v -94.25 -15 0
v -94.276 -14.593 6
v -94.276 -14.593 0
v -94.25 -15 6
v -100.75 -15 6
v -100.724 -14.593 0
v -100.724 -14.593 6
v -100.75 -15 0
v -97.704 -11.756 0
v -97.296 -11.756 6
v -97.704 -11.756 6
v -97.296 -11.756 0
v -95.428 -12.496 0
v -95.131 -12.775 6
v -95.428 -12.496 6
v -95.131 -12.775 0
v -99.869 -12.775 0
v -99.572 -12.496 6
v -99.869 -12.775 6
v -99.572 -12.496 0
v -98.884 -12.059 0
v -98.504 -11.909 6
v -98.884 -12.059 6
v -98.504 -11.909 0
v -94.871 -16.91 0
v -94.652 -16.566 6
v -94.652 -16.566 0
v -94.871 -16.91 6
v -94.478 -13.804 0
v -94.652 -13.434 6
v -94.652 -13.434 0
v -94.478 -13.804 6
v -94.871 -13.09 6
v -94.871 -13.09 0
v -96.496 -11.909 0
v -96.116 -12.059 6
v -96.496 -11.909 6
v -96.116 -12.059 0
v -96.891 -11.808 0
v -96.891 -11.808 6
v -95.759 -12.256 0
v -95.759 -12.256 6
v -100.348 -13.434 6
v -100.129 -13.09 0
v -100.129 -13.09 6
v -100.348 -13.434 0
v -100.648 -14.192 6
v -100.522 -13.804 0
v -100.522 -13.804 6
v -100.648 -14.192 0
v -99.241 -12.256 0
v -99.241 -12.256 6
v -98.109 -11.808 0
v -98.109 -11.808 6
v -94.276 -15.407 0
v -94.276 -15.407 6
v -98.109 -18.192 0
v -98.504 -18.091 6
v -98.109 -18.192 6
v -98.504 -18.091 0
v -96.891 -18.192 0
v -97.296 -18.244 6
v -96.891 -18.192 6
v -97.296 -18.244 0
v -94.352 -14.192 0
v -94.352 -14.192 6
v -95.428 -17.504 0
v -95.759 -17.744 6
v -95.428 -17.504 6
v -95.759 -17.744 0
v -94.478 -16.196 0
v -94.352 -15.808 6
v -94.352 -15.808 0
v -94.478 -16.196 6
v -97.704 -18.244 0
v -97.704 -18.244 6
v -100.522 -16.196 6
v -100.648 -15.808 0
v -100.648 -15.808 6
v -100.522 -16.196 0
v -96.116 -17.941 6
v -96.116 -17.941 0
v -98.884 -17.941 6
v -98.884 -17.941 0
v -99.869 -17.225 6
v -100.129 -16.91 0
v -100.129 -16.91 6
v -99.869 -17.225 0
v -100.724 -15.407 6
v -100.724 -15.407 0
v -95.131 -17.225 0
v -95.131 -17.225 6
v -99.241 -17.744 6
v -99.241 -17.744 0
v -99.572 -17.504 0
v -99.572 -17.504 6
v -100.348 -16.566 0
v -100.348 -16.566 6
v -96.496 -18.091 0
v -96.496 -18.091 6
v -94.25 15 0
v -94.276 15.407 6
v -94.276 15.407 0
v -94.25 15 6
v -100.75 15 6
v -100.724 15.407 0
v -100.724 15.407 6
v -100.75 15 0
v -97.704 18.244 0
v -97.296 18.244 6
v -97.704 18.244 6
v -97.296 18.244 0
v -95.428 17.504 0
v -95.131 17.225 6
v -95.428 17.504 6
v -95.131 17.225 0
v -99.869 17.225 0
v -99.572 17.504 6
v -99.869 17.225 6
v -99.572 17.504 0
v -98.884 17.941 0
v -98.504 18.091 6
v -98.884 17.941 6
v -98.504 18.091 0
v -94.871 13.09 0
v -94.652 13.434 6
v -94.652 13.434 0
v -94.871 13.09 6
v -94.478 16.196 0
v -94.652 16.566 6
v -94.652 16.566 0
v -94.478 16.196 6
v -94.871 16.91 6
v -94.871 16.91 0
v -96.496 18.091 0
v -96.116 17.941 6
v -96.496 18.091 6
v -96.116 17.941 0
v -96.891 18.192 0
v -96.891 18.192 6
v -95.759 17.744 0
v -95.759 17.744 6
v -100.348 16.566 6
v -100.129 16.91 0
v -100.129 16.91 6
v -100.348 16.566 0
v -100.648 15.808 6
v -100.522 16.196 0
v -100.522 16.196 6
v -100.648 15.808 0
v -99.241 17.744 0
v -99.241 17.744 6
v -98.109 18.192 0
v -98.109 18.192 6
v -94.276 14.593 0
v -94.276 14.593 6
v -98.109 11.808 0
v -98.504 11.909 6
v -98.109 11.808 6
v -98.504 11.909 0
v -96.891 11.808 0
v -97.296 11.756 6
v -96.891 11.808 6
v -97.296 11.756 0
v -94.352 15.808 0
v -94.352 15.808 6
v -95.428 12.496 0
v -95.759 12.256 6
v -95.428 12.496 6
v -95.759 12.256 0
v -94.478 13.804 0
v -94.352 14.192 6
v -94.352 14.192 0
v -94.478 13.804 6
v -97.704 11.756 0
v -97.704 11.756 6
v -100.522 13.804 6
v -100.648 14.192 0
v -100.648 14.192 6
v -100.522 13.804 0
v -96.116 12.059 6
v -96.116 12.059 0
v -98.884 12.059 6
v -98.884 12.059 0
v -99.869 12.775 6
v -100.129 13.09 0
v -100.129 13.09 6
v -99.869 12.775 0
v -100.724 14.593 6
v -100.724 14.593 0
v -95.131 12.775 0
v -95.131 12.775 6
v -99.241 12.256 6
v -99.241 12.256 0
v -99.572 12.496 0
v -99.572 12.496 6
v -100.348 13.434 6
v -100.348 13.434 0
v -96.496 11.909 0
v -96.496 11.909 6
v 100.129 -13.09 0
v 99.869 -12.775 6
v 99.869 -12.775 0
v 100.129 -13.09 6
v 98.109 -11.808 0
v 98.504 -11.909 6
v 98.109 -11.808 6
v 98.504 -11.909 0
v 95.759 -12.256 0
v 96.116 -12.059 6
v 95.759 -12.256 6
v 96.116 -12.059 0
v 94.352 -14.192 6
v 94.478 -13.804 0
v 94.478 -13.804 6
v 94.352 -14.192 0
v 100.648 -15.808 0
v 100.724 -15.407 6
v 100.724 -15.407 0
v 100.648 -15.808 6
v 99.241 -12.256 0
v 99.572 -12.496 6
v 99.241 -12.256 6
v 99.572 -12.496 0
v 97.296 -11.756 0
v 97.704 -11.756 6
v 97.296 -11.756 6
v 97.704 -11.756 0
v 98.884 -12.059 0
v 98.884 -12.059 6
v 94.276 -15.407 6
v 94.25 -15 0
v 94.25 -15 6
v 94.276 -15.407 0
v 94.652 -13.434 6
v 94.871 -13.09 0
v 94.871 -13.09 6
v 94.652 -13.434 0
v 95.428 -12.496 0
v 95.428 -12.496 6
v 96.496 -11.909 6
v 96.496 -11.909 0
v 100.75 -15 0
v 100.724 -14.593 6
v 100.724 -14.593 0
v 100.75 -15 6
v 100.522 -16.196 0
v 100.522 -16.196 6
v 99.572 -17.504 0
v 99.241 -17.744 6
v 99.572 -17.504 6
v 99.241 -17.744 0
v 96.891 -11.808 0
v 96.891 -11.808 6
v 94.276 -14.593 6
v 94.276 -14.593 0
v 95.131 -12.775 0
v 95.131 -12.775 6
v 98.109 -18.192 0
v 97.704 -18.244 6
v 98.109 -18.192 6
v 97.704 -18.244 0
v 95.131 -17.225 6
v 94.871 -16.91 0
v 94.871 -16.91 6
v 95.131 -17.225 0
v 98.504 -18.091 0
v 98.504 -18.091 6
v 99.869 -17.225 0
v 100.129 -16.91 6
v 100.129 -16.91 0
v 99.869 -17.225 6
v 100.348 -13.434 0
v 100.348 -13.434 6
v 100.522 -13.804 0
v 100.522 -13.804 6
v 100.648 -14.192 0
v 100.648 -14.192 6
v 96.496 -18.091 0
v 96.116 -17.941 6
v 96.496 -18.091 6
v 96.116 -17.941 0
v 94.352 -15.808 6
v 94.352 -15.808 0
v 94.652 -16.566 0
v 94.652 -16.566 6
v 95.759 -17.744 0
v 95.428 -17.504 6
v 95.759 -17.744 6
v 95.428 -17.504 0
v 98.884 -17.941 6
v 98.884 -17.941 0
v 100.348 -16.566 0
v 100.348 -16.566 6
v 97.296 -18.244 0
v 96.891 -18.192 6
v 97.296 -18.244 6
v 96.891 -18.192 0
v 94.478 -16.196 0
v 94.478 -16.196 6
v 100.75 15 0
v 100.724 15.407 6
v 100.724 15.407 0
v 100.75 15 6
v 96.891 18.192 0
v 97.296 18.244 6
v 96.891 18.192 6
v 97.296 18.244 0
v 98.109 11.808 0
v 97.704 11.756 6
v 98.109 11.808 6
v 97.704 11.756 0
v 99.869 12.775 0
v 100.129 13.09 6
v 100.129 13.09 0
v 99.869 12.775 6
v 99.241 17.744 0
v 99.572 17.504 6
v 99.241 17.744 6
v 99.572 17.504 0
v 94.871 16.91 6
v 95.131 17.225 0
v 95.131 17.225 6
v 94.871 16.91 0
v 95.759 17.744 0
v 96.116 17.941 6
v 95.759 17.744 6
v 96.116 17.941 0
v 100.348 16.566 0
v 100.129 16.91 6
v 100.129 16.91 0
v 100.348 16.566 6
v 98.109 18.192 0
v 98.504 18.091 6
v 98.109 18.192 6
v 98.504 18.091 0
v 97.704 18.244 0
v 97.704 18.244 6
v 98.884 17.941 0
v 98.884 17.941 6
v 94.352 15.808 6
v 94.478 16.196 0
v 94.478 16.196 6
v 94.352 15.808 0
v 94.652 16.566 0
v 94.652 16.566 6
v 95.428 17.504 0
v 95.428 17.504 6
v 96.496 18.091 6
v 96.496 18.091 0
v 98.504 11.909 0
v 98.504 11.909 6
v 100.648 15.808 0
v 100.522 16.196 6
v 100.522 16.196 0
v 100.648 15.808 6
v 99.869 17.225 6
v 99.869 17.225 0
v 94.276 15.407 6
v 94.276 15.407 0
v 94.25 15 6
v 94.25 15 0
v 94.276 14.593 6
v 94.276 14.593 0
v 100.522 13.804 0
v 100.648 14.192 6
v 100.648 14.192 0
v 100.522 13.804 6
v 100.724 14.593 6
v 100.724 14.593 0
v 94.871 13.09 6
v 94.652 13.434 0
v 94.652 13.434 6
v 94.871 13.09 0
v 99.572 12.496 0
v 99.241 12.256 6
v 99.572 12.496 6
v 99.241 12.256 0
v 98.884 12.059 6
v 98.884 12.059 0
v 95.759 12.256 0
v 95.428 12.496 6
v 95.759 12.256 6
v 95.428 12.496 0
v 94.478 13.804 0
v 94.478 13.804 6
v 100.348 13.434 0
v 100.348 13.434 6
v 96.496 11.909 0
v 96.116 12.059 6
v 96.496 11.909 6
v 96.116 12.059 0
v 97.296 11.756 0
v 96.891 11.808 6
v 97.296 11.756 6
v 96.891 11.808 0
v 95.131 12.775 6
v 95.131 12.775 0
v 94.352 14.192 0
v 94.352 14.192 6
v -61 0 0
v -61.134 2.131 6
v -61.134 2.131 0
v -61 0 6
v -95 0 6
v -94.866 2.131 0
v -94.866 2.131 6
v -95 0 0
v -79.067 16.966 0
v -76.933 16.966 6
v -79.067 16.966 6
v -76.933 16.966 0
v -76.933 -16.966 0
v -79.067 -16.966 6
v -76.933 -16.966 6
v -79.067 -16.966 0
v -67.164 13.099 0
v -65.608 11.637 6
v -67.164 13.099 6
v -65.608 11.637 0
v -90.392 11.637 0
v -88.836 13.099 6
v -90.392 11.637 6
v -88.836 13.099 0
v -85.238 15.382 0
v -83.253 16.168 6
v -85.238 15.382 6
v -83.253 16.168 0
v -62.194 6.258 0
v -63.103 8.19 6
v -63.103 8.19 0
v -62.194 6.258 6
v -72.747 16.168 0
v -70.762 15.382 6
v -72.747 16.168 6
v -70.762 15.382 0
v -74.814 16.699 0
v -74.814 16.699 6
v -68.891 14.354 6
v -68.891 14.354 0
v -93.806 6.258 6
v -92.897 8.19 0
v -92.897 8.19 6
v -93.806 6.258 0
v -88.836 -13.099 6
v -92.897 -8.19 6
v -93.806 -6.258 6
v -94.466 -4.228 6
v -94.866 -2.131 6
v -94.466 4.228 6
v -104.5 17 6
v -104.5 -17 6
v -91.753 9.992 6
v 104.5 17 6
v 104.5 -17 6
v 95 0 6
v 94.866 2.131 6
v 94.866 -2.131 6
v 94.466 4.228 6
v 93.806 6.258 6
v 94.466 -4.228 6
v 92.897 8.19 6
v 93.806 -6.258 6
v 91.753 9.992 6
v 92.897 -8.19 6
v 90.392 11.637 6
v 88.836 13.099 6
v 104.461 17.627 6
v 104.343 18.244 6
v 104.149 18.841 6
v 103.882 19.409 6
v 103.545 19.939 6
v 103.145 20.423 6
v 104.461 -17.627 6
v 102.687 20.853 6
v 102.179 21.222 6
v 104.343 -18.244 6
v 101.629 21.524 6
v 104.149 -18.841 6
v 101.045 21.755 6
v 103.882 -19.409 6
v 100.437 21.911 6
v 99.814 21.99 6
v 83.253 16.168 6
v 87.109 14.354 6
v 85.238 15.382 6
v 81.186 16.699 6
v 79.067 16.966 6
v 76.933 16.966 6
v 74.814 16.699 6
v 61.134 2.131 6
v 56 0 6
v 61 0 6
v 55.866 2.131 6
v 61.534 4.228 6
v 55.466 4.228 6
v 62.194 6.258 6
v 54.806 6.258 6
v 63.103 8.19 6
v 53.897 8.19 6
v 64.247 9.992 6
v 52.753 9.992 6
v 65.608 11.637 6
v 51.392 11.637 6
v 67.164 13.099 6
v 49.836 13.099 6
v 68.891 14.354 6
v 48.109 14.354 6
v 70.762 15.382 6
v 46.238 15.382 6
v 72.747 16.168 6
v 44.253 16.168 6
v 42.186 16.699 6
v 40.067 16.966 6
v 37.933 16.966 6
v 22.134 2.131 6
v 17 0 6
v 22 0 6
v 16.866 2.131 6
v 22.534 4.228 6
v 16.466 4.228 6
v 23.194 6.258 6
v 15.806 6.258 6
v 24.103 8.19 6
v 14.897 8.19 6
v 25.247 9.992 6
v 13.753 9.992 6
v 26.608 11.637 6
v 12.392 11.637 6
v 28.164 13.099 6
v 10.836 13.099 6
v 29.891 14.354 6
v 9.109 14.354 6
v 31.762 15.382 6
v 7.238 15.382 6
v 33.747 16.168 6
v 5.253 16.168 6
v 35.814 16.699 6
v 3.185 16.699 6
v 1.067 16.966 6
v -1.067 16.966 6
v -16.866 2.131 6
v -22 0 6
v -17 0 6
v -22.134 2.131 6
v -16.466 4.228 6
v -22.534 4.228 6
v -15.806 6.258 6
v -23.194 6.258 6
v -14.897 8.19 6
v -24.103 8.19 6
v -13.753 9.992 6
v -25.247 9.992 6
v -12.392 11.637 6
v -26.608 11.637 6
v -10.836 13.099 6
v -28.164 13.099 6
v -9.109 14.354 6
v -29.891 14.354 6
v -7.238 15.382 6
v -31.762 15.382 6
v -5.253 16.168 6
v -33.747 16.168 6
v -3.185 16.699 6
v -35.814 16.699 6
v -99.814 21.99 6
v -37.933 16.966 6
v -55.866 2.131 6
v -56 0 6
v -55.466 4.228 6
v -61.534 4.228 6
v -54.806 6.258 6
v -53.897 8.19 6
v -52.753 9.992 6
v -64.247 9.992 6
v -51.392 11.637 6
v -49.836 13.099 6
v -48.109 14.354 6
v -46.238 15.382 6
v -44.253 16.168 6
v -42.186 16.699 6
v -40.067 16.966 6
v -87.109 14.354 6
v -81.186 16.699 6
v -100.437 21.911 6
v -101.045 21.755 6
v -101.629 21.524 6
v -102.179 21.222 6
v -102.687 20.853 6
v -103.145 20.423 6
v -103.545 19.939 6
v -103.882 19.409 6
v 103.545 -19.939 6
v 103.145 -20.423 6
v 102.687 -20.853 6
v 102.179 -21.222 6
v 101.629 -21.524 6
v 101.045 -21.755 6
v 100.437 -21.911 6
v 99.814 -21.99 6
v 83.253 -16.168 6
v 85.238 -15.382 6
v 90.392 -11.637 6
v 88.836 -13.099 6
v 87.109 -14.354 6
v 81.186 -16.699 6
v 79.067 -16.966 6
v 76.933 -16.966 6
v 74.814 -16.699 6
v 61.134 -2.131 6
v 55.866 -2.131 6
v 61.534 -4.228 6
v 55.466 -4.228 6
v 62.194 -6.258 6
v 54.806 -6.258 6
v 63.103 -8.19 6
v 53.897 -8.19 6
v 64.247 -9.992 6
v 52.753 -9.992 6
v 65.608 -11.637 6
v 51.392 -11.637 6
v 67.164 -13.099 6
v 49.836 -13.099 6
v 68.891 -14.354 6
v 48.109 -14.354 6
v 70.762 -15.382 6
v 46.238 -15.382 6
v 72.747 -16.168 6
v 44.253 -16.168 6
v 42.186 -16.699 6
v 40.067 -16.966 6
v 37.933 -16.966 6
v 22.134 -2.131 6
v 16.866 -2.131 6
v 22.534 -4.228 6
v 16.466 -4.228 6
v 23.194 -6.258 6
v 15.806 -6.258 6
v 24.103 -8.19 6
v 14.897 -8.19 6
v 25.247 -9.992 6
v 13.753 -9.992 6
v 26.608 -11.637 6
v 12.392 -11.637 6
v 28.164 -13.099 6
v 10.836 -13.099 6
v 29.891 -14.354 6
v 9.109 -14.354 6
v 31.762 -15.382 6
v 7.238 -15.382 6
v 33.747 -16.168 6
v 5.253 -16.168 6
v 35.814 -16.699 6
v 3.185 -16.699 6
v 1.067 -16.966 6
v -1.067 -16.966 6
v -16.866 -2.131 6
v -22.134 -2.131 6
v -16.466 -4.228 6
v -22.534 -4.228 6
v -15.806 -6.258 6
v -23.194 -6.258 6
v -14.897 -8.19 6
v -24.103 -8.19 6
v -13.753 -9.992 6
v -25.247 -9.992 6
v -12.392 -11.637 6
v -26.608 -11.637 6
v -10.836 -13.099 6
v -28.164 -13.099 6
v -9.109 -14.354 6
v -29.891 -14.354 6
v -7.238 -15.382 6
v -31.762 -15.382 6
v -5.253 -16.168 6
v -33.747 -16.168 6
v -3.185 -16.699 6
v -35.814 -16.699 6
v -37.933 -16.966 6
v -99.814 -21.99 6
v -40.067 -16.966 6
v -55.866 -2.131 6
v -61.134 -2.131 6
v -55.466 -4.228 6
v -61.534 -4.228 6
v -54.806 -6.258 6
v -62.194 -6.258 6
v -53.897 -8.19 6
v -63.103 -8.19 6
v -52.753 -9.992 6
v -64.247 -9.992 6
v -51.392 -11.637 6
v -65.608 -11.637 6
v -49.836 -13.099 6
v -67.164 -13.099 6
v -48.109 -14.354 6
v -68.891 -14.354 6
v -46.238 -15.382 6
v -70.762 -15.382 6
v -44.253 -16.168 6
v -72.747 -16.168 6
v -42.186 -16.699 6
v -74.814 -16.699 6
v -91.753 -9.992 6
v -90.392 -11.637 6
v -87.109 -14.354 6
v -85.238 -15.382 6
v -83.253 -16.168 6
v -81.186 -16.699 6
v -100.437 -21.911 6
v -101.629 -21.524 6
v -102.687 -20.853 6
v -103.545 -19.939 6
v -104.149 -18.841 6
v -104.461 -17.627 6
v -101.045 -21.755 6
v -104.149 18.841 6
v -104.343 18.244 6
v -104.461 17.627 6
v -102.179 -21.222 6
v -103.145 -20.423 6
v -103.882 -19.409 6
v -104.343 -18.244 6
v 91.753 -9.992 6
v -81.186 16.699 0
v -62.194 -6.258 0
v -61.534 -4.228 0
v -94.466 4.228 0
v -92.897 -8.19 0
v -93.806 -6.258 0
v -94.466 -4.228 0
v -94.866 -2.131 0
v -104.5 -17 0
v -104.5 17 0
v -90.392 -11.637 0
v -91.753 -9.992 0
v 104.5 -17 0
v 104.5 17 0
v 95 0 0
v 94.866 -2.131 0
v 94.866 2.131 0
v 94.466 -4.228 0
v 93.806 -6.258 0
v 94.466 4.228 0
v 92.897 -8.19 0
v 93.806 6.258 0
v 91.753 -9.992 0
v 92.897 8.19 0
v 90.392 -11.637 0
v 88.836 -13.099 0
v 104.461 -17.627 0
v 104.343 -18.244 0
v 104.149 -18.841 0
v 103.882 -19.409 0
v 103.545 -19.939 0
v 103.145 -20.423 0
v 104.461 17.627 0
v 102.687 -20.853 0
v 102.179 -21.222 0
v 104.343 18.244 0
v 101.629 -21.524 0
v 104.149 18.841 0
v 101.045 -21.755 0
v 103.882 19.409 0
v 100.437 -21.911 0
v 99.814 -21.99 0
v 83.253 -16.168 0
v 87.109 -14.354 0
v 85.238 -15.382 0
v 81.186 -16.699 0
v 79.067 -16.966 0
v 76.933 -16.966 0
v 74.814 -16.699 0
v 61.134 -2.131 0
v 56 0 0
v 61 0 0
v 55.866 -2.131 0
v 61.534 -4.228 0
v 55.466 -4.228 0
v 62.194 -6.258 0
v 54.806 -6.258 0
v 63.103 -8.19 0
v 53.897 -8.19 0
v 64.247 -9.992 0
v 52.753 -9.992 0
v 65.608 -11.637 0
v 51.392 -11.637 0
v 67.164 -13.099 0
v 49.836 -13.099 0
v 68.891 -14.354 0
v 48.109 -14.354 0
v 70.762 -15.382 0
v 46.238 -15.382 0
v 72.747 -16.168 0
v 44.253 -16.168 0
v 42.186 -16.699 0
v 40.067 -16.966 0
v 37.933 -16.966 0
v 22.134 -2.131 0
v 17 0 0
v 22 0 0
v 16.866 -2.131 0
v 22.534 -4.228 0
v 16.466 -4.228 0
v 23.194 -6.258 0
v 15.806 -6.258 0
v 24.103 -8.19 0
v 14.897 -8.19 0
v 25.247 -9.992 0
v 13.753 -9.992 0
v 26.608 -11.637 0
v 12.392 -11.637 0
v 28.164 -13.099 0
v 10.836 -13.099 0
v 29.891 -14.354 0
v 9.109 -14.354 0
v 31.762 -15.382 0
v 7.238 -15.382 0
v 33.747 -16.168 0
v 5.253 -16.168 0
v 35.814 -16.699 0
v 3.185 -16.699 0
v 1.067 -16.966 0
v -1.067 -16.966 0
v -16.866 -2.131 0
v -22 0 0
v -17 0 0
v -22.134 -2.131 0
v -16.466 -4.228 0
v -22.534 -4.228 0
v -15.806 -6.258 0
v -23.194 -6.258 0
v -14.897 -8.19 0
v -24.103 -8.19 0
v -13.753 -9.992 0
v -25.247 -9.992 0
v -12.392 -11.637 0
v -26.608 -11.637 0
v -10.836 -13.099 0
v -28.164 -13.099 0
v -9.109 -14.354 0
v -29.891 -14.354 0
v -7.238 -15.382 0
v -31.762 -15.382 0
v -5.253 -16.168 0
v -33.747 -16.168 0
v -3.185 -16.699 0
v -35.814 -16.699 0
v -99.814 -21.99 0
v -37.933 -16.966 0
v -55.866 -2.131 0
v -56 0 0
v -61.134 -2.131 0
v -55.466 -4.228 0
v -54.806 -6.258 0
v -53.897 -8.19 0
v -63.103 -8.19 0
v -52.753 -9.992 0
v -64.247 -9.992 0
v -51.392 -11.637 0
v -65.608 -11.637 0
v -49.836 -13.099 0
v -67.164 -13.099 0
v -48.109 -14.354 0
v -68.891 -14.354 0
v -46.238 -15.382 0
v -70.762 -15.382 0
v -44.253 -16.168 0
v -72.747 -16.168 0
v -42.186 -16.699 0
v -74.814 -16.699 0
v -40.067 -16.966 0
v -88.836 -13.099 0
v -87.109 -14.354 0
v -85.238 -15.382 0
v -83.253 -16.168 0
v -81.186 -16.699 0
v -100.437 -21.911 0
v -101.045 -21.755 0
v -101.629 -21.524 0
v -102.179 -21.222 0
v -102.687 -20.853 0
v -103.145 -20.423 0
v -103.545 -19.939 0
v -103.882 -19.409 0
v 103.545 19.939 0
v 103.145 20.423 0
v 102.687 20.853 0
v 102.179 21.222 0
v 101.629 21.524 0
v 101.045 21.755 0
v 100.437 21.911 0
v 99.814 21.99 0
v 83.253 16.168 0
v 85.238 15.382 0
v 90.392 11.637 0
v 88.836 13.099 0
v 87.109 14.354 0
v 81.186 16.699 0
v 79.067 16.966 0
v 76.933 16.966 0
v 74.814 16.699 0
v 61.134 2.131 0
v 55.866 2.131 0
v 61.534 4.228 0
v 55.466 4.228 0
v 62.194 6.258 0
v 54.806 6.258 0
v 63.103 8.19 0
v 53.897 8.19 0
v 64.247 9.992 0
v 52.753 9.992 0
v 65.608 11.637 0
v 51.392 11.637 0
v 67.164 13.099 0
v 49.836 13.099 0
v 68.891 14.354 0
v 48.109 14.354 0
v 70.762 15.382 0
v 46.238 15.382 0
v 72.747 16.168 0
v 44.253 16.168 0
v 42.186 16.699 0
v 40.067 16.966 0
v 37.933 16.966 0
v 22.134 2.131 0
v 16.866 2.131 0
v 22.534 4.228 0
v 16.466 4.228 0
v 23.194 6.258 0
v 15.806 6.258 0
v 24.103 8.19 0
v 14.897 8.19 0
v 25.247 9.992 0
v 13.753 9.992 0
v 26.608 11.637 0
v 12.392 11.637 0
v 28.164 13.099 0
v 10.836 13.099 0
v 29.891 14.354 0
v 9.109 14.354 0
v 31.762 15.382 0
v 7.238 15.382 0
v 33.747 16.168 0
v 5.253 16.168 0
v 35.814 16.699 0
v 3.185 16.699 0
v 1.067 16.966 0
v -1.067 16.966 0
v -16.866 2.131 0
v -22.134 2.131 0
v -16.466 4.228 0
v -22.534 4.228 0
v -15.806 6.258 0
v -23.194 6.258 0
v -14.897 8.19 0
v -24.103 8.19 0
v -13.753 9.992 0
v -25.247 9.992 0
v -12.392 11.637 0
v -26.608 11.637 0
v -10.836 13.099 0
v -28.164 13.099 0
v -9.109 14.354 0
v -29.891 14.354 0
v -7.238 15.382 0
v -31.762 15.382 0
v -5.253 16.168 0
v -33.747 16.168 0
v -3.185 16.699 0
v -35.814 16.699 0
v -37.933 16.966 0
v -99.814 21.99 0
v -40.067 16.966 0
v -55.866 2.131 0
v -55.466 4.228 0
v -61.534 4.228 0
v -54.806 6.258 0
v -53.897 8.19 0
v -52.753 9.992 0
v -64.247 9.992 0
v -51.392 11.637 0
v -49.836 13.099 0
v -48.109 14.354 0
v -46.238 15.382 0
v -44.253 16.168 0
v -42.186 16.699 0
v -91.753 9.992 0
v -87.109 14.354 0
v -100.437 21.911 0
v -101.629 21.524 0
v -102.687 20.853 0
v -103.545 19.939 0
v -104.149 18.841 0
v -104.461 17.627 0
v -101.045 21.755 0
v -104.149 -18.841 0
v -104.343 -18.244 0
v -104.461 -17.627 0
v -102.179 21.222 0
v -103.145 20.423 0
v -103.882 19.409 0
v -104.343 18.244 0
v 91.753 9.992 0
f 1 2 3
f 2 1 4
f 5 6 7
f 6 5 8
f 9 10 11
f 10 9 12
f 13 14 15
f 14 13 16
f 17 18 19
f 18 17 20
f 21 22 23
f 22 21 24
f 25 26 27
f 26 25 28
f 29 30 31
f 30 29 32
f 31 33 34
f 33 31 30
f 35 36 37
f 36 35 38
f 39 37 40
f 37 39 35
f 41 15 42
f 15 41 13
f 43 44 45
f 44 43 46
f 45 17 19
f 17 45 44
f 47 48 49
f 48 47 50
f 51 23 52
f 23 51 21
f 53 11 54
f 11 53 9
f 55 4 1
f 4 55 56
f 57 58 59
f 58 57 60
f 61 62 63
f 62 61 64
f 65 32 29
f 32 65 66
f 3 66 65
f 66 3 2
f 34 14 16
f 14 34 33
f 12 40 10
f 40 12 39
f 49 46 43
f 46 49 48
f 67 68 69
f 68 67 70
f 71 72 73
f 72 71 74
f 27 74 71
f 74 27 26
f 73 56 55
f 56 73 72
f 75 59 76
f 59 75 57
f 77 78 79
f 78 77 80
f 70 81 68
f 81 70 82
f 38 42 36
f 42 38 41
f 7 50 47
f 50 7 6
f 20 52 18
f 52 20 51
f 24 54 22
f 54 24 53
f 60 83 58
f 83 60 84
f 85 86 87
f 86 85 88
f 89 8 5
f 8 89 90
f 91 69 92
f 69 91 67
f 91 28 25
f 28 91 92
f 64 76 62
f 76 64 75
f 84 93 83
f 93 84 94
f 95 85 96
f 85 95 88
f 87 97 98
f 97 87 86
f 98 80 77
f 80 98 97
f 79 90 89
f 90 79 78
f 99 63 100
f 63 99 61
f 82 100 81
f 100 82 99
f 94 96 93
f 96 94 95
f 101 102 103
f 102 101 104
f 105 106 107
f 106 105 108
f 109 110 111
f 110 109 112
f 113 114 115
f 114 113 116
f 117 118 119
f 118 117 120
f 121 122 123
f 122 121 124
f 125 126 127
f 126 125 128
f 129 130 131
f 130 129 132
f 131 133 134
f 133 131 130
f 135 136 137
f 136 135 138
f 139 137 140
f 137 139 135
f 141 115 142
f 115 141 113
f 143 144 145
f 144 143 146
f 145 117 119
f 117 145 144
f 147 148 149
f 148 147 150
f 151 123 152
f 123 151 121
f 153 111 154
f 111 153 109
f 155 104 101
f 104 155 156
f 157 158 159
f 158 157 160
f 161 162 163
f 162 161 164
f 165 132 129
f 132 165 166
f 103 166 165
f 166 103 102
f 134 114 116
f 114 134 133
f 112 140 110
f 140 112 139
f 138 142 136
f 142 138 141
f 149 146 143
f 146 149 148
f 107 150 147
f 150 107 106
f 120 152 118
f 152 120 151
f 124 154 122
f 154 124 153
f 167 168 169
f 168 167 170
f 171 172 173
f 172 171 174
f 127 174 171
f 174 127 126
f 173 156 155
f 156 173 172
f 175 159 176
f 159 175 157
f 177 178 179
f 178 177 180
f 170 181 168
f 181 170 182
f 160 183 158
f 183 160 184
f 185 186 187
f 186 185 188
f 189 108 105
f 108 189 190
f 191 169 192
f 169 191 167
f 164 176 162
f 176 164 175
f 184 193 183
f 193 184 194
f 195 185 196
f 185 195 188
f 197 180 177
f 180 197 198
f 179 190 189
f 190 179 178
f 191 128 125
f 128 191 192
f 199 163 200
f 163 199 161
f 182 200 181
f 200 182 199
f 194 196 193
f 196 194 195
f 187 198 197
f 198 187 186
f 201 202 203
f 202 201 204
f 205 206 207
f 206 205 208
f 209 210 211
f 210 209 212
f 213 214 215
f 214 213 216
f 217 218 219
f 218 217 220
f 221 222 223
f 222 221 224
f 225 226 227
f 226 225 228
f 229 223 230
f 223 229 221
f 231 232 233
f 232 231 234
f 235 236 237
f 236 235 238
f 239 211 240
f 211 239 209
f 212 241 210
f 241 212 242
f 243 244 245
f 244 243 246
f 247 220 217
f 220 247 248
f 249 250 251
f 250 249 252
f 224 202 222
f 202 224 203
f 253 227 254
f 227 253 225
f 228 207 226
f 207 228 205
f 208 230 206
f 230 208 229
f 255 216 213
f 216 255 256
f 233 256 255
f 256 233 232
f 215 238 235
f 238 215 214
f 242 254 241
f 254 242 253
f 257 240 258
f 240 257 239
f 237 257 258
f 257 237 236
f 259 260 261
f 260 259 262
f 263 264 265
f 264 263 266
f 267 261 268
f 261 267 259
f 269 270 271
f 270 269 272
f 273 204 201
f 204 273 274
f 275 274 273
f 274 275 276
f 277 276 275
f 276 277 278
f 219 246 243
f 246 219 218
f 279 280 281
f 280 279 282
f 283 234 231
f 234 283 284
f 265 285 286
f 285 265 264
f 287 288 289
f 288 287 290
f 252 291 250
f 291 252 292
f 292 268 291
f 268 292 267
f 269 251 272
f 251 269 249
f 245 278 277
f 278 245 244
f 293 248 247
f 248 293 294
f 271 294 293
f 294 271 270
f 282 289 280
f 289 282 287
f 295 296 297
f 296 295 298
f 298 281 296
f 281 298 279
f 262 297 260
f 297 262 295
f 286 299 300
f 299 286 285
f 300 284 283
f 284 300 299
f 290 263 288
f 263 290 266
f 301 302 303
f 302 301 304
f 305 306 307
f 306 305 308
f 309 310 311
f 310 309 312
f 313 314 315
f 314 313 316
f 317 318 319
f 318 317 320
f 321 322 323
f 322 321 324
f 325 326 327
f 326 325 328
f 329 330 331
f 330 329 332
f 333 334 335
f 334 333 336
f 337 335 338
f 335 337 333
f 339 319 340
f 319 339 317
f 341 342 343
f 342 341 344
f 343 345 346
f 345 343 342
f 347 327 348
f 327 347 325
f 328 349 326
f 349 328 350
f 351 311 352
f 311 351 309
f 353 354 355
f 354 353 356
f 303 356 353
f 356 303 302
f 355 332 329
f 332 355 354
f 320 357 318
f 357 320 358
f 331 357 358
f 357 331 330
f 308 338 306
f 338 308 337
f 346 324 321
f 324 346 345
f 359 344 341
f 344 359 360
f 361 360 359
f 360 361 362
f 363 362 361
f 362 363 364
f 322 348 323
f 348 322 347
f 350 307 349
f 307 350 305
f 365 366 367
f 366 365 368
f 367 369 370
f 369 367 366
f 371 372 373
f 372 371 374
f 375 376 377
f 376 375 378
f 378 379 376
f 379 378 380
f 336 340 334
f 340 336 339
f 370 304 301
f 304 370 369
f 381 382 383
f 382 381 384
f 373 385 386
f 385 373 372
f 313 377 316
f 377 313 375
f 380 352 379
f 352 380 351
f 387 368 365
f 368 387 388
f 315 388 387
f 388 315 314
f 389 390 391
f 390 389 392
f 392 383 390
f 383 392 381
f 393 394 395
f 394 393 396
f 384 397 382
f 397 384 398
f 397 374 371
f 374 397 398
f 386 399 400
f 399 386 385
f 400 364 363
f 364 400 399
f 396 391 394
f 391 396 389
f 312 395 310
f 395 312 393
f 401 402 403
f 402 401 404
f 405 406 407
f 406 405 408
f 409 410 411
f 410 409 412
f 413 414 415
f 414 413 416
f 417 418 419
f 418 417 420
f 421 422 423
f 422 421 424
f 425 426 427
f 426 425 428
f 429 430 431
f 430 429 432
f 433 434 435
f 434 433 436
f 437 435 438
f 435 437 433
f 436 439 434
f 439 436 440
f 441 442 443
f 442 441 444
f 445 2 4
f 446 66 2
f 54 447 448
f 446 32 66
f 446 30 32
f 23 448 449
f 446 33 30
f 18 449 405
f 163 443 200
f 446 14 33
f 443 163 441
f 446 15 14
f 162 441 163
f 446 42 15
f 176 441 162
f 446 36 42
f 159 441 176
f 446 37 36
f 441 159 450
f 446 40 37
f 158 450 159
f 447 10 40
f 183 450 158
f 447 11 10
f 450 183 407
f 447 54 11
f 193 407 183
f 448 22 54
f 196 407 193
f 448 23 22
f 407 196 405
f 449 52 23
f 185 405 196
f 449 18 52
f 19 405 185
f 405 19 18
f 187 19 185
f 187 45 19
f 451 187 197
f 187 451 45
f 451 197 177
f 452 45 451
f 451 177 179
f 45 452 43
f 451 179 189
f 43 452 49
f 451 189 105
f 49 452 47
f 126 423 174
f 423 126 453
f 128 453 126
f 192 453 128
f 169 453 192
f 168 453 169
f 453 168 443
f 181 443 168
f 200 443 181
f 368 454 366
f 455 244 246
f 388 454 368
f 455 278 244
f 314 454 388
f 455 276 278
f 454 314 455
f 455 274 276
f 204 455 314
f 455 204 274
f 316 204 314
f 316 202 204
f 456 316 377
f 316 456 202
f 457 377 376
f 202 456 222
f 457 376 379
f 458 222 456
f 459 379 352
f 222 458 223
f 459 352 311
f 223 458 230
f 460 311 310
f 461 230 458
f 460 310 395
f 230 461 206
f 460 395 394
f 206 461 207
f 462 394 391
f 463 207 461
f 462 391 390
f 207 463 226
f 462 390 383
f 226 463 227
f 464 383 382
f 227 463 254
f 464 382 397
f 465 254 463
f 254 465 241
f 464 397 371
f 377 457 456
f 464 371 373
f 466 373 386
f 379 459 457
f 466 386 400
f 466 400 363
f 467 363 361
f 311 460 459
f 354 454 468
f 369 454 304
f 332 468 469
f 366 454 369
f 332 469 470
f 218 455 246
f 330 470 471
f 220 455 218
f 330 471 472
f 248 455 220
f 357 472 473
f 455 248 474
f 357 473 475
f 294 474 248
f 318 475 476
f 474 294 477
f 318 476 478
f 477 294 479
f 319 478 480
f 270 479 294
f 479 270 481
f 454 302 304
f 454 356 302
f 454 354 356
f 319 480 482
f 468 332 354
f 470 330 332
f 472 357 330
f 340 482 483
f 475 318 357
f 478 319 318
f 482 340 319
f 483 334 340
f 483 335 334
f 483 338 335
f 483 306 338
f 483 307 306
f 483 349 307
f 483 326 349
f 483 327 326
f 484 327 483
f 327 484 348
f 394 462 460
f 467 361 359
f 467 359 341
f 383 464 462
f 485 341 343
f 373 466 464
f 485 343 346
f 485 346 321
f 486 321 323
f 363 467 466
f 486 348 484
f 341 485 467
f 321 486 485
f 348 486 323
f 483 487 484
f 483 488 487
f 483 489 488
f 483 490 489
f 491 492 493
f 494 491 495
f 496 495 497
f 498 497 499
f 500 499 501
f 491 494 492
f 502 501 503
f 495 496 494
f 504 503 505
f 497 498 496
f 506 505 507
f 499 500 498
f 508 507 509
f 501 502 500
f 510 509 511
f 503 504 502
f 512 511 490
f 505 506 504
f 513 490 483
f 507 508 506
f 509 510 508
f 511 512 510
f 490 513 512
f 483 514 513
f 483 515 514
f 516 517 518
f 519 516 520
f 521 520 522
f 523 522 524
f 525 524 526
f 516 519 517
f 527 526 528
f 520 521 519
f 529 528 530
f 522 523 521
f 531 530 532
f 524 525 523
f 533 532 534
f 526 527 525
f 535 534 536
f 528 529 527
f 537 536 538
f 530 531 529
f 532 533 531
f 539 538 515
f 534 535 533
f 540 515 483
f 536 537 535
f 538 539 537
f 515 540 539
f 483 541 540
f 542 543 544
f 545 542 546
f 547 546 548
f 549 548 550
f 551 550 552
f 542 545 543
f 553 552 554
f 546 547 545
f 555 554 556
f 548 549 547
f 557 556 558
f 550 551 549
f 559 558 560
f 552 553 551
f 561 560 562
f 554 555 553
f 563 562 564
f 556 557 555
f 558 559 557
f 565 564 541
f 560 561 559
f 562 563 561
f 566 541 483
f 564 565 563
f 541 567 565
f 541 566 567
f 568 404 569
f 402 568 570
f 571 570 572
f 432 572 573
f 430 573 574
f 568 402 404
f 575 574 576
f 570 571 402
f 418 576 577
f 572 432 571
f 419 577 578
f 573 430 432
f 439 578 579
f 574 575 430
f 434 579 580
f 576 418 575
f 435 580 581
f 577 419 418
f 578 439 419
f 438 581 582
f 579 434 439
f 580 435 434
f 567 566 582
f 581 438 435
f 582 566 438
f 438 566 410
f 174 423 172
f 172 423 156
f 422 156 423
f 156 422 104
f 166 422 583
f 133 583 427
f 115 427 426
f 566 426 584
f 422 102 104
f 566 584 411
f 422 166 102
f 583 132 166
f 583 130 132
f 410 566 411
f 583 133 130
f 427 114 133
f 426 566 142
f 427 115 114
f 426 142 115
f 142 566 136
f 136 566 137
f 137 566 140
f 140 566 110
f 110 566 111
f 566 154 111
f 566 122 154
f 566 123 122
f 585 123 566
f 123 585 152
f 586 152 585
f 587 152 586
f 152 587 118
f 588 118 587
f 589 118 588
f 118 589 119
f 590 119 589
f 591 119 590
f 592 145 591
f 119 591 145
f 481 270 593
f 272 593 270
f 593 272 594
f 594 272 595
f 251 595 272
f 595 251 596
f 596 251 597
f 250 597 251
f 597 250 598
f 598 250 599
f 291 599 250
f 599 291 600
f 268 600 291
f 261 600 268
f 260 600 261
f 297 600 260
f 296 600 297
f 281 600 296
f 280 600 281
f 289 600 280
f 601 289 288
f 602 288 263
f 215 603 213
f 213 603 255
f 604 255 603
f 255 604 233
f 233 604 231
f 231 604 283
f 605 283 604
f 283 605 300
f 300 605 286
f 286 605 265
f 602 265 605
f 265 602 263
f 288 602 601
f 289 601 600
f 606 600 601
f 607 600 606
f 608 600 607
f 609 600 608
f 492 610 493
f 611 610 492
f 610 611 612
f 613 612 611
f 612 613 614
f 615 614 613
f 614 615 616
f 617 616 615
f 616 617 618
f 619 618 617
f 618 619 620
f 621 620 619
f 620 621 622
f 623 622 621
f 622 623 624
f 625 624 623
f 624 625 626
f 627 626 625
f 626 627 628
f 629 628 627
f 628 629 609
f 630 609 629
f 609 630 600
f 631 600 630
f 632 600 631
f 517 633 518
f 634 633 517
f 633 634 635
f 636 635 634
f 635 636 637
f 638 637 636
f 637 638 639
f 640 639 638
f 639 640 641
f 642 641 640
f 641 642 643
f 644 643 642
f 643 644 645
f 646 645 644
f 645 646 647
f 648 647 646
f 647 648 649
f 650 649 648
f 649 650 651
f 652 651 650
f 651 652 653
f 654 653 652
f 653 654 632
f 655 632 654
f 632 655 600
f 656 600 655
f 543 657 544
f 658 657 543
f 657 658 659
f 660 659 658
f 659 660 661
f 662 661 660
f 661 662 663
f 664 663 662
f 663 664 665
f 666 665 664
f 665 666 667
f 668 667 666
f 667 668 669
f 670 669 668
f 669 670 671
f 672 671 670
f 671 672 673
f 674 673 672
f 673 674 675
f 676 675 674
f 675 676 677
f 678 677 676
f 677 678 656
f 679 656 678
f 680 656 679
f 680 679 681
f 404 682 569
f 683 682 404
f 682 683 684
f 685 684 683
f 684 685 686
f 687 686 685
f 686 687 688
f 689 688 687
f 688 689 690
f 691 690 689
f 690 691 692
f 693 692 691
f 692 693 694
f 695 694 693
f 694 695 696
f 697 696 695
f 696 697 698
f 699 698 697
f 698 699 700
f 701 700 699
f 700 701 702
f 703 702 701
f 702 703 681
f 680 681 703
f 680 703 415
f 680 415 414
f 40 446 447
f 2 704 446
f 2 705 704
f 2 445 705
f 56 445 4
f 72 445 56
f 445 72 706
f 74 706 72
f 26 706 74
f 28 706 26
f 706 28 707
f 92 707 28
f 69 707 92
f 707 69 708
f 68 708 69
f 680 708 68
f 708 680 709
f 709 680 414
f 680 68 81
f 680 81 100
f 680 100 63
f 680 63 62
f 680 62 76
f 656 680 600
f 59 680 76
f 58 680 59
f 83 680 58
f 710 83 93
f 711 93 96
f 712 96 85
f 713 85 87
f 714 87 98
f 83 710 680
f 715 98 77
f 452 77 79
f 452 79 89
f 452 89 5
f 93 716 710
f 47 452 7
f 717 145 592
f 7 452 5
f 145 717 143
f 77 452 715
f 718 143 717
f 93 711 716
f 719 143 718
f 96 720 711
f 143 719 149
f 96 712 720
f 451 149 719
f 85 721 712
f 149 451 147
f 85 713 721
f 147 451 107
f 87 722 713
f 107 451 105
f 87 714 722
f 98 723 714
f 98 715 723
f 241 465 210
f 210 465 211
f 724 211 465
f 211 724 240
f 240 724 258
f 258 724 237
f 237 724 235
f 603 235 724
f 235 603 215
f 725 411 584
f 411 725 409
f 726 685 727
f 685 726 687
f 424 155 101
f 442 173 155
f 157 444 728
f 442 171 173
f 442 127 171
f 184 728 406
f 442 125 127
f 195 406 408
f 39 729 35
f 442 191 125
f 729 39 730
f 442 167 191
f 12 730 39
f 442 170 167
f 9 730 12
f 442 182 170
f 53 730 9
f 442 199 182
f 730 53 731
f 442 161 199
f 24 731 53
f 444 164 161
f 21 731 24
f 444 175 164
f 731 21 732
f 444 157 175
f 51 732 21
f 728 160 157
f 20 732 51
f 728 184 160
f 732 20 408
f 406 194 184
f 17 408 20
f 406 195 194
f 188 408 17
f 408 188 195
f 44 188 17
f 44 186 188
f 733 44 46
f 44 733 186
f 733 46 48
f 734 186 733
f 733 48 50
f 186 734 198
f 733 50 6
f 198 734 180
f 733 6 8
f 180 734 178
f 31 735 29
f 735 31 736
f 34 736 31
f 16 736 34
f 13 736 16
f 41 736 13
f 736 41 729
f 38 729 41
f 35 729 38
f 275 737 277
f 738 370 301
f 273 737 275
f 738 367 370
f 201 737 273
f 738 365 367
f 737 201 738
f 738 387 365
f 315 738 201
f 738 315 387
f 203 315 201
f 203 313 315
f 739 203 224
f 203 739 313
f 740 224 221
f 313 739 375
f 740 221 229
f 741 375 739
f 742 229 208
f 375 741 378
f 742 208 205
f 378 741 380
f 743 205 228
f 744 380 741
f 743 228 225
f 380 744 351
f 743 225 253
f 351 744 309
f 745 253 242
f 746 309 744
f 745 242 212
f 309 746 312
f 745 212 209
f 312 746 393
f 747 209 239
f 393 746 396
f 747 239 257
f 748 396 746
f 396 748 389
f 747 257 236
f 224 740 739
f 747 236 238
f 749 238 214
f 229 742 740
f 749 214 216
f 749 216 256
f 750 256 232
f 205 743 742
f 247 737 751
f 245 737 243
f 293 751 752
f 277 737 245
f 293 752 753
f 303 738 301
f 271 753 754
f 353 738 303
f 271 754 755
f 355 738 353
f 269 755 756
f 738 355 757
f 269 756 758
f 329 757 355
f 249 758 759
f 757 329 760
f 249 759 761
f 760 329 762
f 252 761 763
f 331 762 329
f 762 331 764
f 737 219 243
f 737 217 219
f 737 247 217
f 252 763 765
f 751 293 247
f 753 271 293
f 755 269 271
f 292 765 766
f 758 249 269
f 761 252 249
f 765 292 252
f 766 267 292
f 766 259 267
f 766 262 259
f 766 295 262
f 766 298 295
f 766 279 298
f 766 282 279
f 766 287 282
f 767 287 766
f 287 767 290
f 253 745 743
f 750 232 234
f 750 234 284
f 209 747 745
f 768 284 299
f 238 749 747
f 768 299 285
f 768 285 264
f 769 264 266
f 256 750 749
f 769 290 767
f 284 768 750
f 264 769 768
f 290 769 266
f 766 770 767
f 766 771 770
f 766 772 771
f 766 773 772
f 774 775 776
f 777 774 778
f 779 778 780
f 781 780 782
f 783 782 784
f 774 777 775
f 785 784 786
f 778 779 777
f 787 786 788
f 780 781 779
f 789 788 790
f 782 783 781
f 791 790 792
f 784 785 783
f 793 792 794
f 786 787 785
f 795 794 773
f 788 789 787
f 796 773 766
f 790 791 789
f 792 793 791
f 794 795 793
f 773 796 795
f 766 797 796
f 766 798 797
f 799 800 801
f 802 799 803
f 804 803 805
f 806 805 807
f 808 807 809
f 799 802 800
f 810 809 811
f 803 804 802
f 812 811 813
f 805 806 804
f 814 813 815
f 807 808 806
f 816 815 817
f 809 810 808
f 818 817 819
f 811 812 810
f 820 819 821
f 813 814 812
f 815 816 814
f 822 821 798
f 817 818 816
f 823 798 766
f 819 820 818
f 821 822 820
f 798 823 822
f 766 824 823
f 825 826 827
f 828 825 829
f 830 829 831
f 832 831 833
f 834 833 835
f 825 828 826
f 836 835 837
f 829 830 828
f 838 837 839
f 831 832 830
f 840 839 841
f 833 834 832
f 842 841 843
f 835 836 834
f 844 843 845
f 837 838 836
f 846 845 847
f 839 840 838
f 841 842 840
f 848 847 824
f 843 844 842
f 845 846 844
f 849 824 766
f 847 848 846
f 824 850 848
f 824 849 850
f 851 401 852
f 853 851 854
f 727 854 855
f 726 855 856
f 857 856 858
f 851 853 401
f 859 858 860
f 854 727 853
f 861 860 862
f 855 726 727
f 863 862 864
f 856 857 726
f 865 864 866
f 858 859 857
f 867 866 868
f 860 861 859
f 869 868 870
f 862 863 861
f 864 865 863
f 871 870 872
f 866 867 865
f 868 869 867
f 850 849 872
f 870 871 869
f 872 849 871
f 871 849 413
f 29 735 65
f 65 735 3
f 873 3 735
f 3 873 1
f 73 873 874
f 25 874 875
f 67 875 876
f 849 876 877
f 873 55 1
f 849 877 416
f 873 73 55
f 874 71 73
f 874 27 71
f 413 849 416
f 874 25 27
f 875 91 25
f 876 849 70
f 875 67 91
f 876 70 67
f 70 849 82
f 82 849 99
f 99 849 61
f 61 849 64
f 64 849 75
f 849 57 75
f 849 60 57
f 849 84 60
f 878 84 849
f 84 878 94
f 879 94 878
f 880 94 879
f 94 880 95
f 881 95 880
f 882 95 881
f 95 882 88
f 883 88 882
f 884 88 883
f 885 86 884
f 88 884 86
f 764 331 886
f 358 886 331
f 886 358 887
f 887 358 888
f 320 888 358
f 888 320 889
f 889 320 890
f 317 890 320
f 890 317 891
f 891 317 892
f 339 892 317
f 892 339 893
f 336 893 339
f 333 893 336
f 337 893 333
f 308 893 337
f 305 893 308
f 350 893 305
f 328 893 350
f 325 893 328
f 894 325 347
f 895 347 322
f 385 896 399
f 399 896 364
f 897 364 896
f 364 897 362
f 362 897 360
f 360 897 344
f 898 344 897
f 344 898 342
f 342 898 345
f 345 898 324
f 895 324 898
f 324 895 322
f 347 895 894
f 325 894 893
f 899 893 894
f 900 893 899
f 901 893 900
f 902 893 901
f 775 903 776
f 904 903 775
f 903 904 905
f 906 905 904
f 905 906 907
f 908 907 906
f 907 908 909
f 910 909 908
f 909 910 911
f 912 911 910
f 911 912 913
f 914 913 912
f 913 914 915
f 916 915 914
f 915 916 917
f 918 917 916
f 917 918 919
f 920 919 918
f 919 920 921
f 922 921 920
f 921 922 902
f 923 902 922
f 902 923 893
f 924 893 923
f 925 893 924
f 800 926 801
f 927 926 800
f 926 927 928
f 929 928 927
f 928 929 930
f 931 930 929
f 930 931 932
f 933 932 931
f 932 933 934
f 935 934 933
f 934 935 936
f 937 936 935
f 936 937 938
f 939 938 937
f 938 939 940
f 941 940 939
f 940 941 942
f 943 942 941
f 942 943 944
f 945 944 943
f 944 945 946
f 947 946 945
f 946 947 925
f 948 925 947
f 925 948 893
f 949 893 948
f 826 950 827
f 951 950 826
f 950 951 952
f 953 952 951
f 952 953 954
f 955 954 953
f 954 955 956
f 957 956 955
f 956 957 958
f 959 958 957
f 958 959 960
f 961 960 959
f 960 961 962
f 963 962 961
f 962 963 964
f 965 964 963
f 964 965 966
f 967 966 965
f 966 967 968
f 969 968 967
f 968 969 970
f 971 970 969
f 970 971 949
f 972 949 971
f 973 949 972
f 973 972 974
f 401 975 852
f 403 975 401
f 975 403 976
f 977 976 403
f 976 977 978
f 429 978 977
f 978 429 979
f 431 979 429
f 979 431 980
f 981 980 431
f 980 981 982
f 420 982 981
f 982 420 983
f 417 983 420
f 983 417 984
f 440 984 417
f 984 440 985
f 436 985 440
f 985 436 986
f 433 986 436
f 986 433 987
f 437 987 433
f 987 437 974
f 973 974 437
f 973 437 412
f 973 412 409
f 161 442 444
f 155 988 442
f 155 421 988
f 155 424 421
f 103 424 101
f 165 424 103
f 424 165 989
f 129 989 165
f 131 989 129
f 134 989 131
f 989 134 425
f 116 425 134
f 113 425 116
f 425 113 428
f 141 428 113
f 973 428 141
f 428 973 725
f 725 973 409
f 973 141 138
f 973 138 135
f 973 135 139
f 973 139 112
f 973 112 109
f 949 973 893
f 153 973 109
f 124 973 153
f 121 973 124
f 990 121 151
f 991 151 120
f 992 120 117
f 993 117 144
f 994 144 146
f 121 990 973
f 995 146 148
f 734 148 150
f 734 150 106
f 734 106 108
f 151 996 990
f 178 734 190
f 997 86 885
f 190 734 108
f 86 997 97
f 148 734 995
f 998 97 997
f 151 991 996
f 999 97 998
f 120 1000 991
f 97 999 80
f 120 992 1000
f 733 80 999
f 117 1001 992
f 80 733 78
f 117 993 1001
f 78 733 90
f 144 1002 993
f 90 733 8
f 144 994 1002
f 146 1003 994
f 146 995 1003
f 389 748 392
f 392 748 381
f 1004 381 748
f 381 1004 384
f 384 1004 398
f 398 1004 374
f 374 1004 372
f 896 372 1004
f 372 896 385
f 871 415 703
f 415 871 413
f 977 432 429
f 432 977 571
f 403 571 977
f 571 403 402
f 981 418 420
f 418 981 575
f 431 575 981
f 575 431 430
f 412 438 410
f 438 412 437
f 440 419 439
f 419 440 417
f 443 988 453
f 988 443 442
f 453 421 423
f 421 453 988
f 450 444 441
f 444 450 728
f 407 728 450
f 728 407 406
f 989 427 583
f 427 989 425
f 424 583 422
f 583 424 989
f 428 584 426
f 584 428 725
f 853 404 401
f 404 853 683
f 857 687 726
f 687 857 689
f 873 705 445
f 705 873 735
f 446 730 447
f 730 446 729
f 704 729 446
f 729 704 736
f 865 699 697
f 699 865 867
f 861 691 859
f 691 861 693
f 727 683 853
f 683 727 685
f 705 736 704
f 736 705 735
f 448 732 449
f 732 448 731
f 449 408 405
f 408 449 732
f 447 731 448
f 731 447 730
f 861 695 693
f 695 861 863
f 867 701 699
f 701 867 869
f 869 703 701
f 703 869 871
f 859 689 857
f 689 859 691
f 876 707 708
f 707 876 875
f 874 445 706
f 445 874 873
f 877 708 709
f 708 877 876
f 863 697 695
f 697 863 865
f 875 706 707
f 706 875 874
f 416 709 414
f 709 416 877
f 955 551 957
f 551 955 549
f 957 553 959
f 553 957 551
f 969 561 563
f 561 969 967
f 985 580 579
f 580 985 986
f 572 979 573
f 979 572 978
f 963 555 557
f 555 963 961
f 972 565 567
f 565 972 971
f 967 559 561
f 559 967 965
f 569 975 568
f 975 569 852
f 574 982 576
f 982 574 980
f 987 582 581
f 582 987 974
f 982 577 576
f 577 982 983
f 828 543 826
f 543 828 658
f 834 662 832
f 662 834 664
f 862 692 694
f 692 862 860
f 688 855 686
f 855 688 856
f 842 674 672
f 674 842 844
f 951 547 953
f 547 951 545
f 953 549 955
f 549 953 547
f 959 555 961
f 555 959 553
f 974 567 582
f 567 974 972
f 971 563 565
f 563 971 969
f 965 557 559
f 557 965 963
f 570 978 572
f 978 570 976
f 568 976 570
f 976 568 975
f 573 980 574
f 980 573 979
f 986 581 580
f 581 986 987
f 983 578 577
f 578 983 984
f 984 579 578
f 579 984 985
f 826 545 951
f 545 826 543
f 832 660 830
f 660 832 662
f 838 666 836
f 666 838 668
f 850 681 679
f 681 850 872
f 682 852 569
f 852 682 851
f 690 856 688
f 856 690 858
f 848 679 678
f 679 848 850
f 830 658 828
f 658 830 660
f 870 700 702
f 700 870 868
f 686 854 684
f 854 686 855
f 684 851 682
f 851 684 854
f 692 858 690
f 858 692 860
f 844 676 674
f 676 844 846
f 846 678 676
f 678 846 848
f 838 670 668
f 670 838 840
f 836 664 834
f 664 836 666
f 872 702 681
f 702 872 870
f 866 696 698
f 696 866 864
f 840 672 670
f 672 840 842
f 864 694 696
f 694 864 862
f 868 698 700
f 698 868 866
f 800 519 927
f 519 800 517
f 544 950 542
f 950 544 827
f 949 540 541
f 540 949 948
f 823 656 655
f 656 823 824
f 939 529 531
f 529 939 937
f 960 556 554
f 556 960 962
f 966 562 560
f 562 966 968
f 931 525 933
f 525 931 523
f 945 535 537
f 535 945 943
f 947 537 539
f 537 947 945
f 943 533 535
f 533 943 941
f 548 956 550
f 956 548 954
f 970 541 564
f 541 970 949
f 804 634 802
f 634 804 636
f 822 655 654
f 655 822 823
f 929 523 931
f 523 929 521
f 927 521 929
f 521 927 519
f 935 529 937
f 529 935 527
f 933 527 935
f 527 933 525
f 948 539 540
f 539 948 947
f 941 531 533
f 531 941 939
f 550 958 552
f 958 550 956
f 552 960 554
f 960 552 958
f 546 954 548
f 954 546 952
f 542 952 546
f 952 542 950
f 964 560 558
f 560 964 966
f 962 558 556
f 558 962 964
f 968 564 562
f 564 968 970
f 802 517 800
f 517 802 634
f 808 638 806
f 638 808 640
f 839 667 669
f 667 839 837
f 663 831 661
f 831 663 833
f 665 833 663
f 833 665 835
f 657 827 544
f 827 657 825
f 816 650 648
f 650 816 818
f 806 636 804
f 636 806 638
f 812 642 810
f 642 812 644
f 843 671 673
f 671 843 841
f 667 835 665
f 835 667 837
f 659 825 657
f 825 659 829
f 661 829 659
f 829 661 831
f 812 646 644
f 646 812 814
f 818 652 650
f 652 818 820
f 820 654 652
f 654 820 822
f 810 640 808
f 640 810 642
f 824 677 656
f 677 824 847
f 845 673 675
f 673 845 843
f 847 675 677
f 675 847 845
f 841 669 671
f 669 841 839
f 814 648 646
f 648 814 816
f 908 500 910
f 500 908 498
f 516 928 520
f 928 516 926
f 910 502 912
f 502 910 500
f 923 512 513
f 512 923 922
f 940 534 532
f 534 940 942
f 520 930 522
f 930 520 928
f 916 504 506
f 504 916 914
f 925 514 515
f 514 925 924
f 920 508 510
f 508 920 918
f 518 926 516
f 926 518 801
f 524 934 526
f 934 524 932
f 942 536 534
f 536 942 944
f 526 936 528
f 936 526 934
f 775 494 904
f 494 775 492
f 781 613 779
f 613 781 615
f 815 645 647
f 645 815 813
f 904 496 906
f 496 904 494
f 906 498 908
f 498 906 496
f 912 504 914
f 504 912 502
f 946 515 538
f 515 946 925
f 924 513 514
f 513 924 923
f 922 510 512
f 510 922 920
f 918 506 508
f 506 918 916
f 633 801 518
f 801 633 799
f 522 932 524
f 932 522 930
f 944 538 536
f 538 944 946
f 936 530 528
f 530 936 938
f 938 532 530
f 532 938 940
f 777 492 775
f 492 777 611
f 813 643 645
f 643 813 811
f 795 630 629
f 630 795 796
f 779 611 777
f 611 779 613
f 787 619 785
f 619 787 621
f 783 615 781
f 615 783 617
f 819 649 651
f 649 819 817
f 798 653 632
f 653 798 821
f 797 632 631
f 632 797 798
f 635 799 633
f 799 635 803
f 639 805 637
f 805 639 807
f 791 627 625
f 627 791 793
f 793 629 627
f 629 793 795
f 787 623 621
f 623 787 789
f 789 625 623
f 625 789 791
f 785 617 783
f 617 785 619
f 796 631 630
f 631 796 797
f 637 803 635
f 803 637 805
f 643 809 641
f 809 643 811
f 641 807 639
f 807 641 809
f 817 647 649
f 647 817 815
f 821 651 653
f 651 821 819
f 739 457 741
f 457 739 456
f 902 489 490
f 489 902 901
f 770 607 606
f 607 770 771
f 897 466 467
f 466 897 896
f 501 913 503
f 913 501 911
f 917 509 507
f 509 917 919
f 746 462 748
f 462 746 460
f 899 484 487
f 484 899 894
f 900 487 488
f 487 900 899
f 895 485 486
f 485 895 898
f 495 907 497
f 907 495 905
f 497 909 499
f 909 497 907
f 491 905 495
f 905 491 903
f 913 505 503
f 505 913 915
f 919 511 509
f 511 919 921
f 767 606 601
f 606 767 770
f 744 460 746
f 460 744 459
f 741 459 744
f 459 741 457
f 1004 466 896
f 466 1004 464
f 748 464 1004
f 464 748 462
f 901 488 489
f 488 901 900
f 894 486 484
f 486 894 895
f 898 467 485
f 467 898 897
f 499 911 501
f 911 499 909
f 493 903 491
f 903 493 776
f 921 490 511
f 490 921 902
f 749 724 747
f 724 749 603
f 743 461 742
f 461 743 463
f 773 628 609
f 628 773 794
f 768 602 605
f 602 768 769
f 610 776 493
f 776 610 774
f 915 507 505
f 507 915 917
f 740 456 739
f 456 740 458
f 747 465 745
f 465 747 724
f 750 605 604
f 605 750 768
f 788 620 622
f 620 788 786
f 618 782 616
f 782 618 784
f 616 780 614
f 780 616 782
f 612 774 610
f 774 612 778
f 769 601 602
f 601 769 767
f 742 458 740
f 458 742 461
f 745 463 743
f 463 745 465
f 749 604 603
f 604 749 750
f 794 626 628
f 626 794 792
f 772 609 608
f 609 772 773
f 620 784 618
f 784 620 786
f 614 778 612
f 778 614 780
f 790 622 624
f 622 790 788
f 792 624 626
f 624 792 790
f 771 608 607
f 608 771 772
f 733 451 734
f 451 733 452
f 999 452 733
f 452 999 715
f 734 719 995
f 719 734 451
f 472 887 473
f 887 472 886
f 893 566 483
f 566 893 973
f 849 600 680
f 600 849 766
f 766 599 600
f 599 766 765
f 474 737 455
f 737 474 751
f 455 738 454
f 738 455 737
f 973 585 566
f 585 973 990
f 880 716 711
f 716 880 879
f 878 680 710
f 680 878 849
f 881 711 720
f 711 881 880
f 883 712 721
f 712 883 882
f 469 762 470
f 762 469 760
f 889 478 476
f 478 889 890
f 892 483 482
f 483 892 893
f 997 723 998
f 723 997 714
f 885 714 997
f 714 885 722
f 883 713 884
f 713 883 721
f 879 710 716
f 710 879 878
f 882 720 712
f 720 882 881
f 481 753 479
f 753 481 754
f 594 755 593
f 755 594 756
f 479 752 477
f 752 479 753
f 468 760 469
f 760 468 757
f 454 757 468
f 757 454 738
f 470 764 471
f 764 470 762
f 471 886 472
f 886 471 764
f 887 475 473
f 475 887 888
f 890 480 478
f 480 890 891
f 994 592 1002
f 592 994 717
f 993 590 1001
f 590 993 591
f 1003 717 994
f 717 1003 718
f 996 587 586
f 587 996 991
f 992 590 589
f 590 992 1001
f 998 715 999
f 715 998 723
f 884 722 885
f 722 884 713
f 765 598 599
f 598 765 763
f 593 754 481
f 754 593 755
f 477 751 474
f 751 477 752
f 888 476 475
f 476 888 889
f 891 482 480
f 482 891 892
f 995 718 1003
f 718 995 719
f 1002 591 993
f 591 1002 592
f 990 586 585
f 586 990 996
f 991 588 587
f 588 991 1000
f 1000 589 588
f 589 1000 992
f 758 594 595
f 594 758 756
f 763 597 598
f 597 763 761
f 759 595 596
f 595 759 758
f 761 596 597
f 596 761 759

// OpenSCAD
$fn = 50;


difference() {
	union() {
		hull() {
			translate(v = [-99.5000000000, 17.0000000000, 0]) {
				cylinder(h = 6, r = 5);
			}
			translate(v = [99.5000000000, 17.0000000000, 0]) {
				cylinder(h = 6, r = 5);
			}
			translate(v = [-99.5000000000, -17.0000000000, 0]) {
				cylinder(h = 6, r = 5);
			}
			translate(v = [99.5000000000, -17.0000000000, 0]) {
				cylinder(h = 6, r = 5);
			}
		}
	}
	union() {
		#translate(v = [-97.5000000000, -15.0000000000, -100.0000000000]) {
			cylinder(h = 200, r = 3.2500000000);
		}
		#translate(v = [-97.5000000000, 15.0000000000, -100.0000000000]) {
			cylinder(h = 200, r = 3.2500000000);
		}
		#translate(v = [97.5000000000, -15.0000000000, -100.0000000000]) {
			cylinder(h = 200, r = 3.2500000000);
		}
		#translate(v = [97.5000000000, 15.0000000000, -100.0000000000]) {
			cylinder(h = 200, r = 3.2500000000);
		}
		#translate(v = [-78.0000000000, 0, 0]) {
			cylinder(h = 6, r = 17.0000000000);
		}
		#translate(v = [-39.0000000000, 0, 0]) {
			cylinder(h = 6, r = 17.0000000000);
		}
		#cylinder(h = 6, r = 17.0000000000);
		#translate(v = [39.0000000000, 0, 0]) {
			cylinder(h = 6, r = 17.0000000000);
		}
		#translate(v = [78.0000000000, 0, 0]) {
			cylinder(h = 6, r = 17.0000000000);
		}
	}
}
